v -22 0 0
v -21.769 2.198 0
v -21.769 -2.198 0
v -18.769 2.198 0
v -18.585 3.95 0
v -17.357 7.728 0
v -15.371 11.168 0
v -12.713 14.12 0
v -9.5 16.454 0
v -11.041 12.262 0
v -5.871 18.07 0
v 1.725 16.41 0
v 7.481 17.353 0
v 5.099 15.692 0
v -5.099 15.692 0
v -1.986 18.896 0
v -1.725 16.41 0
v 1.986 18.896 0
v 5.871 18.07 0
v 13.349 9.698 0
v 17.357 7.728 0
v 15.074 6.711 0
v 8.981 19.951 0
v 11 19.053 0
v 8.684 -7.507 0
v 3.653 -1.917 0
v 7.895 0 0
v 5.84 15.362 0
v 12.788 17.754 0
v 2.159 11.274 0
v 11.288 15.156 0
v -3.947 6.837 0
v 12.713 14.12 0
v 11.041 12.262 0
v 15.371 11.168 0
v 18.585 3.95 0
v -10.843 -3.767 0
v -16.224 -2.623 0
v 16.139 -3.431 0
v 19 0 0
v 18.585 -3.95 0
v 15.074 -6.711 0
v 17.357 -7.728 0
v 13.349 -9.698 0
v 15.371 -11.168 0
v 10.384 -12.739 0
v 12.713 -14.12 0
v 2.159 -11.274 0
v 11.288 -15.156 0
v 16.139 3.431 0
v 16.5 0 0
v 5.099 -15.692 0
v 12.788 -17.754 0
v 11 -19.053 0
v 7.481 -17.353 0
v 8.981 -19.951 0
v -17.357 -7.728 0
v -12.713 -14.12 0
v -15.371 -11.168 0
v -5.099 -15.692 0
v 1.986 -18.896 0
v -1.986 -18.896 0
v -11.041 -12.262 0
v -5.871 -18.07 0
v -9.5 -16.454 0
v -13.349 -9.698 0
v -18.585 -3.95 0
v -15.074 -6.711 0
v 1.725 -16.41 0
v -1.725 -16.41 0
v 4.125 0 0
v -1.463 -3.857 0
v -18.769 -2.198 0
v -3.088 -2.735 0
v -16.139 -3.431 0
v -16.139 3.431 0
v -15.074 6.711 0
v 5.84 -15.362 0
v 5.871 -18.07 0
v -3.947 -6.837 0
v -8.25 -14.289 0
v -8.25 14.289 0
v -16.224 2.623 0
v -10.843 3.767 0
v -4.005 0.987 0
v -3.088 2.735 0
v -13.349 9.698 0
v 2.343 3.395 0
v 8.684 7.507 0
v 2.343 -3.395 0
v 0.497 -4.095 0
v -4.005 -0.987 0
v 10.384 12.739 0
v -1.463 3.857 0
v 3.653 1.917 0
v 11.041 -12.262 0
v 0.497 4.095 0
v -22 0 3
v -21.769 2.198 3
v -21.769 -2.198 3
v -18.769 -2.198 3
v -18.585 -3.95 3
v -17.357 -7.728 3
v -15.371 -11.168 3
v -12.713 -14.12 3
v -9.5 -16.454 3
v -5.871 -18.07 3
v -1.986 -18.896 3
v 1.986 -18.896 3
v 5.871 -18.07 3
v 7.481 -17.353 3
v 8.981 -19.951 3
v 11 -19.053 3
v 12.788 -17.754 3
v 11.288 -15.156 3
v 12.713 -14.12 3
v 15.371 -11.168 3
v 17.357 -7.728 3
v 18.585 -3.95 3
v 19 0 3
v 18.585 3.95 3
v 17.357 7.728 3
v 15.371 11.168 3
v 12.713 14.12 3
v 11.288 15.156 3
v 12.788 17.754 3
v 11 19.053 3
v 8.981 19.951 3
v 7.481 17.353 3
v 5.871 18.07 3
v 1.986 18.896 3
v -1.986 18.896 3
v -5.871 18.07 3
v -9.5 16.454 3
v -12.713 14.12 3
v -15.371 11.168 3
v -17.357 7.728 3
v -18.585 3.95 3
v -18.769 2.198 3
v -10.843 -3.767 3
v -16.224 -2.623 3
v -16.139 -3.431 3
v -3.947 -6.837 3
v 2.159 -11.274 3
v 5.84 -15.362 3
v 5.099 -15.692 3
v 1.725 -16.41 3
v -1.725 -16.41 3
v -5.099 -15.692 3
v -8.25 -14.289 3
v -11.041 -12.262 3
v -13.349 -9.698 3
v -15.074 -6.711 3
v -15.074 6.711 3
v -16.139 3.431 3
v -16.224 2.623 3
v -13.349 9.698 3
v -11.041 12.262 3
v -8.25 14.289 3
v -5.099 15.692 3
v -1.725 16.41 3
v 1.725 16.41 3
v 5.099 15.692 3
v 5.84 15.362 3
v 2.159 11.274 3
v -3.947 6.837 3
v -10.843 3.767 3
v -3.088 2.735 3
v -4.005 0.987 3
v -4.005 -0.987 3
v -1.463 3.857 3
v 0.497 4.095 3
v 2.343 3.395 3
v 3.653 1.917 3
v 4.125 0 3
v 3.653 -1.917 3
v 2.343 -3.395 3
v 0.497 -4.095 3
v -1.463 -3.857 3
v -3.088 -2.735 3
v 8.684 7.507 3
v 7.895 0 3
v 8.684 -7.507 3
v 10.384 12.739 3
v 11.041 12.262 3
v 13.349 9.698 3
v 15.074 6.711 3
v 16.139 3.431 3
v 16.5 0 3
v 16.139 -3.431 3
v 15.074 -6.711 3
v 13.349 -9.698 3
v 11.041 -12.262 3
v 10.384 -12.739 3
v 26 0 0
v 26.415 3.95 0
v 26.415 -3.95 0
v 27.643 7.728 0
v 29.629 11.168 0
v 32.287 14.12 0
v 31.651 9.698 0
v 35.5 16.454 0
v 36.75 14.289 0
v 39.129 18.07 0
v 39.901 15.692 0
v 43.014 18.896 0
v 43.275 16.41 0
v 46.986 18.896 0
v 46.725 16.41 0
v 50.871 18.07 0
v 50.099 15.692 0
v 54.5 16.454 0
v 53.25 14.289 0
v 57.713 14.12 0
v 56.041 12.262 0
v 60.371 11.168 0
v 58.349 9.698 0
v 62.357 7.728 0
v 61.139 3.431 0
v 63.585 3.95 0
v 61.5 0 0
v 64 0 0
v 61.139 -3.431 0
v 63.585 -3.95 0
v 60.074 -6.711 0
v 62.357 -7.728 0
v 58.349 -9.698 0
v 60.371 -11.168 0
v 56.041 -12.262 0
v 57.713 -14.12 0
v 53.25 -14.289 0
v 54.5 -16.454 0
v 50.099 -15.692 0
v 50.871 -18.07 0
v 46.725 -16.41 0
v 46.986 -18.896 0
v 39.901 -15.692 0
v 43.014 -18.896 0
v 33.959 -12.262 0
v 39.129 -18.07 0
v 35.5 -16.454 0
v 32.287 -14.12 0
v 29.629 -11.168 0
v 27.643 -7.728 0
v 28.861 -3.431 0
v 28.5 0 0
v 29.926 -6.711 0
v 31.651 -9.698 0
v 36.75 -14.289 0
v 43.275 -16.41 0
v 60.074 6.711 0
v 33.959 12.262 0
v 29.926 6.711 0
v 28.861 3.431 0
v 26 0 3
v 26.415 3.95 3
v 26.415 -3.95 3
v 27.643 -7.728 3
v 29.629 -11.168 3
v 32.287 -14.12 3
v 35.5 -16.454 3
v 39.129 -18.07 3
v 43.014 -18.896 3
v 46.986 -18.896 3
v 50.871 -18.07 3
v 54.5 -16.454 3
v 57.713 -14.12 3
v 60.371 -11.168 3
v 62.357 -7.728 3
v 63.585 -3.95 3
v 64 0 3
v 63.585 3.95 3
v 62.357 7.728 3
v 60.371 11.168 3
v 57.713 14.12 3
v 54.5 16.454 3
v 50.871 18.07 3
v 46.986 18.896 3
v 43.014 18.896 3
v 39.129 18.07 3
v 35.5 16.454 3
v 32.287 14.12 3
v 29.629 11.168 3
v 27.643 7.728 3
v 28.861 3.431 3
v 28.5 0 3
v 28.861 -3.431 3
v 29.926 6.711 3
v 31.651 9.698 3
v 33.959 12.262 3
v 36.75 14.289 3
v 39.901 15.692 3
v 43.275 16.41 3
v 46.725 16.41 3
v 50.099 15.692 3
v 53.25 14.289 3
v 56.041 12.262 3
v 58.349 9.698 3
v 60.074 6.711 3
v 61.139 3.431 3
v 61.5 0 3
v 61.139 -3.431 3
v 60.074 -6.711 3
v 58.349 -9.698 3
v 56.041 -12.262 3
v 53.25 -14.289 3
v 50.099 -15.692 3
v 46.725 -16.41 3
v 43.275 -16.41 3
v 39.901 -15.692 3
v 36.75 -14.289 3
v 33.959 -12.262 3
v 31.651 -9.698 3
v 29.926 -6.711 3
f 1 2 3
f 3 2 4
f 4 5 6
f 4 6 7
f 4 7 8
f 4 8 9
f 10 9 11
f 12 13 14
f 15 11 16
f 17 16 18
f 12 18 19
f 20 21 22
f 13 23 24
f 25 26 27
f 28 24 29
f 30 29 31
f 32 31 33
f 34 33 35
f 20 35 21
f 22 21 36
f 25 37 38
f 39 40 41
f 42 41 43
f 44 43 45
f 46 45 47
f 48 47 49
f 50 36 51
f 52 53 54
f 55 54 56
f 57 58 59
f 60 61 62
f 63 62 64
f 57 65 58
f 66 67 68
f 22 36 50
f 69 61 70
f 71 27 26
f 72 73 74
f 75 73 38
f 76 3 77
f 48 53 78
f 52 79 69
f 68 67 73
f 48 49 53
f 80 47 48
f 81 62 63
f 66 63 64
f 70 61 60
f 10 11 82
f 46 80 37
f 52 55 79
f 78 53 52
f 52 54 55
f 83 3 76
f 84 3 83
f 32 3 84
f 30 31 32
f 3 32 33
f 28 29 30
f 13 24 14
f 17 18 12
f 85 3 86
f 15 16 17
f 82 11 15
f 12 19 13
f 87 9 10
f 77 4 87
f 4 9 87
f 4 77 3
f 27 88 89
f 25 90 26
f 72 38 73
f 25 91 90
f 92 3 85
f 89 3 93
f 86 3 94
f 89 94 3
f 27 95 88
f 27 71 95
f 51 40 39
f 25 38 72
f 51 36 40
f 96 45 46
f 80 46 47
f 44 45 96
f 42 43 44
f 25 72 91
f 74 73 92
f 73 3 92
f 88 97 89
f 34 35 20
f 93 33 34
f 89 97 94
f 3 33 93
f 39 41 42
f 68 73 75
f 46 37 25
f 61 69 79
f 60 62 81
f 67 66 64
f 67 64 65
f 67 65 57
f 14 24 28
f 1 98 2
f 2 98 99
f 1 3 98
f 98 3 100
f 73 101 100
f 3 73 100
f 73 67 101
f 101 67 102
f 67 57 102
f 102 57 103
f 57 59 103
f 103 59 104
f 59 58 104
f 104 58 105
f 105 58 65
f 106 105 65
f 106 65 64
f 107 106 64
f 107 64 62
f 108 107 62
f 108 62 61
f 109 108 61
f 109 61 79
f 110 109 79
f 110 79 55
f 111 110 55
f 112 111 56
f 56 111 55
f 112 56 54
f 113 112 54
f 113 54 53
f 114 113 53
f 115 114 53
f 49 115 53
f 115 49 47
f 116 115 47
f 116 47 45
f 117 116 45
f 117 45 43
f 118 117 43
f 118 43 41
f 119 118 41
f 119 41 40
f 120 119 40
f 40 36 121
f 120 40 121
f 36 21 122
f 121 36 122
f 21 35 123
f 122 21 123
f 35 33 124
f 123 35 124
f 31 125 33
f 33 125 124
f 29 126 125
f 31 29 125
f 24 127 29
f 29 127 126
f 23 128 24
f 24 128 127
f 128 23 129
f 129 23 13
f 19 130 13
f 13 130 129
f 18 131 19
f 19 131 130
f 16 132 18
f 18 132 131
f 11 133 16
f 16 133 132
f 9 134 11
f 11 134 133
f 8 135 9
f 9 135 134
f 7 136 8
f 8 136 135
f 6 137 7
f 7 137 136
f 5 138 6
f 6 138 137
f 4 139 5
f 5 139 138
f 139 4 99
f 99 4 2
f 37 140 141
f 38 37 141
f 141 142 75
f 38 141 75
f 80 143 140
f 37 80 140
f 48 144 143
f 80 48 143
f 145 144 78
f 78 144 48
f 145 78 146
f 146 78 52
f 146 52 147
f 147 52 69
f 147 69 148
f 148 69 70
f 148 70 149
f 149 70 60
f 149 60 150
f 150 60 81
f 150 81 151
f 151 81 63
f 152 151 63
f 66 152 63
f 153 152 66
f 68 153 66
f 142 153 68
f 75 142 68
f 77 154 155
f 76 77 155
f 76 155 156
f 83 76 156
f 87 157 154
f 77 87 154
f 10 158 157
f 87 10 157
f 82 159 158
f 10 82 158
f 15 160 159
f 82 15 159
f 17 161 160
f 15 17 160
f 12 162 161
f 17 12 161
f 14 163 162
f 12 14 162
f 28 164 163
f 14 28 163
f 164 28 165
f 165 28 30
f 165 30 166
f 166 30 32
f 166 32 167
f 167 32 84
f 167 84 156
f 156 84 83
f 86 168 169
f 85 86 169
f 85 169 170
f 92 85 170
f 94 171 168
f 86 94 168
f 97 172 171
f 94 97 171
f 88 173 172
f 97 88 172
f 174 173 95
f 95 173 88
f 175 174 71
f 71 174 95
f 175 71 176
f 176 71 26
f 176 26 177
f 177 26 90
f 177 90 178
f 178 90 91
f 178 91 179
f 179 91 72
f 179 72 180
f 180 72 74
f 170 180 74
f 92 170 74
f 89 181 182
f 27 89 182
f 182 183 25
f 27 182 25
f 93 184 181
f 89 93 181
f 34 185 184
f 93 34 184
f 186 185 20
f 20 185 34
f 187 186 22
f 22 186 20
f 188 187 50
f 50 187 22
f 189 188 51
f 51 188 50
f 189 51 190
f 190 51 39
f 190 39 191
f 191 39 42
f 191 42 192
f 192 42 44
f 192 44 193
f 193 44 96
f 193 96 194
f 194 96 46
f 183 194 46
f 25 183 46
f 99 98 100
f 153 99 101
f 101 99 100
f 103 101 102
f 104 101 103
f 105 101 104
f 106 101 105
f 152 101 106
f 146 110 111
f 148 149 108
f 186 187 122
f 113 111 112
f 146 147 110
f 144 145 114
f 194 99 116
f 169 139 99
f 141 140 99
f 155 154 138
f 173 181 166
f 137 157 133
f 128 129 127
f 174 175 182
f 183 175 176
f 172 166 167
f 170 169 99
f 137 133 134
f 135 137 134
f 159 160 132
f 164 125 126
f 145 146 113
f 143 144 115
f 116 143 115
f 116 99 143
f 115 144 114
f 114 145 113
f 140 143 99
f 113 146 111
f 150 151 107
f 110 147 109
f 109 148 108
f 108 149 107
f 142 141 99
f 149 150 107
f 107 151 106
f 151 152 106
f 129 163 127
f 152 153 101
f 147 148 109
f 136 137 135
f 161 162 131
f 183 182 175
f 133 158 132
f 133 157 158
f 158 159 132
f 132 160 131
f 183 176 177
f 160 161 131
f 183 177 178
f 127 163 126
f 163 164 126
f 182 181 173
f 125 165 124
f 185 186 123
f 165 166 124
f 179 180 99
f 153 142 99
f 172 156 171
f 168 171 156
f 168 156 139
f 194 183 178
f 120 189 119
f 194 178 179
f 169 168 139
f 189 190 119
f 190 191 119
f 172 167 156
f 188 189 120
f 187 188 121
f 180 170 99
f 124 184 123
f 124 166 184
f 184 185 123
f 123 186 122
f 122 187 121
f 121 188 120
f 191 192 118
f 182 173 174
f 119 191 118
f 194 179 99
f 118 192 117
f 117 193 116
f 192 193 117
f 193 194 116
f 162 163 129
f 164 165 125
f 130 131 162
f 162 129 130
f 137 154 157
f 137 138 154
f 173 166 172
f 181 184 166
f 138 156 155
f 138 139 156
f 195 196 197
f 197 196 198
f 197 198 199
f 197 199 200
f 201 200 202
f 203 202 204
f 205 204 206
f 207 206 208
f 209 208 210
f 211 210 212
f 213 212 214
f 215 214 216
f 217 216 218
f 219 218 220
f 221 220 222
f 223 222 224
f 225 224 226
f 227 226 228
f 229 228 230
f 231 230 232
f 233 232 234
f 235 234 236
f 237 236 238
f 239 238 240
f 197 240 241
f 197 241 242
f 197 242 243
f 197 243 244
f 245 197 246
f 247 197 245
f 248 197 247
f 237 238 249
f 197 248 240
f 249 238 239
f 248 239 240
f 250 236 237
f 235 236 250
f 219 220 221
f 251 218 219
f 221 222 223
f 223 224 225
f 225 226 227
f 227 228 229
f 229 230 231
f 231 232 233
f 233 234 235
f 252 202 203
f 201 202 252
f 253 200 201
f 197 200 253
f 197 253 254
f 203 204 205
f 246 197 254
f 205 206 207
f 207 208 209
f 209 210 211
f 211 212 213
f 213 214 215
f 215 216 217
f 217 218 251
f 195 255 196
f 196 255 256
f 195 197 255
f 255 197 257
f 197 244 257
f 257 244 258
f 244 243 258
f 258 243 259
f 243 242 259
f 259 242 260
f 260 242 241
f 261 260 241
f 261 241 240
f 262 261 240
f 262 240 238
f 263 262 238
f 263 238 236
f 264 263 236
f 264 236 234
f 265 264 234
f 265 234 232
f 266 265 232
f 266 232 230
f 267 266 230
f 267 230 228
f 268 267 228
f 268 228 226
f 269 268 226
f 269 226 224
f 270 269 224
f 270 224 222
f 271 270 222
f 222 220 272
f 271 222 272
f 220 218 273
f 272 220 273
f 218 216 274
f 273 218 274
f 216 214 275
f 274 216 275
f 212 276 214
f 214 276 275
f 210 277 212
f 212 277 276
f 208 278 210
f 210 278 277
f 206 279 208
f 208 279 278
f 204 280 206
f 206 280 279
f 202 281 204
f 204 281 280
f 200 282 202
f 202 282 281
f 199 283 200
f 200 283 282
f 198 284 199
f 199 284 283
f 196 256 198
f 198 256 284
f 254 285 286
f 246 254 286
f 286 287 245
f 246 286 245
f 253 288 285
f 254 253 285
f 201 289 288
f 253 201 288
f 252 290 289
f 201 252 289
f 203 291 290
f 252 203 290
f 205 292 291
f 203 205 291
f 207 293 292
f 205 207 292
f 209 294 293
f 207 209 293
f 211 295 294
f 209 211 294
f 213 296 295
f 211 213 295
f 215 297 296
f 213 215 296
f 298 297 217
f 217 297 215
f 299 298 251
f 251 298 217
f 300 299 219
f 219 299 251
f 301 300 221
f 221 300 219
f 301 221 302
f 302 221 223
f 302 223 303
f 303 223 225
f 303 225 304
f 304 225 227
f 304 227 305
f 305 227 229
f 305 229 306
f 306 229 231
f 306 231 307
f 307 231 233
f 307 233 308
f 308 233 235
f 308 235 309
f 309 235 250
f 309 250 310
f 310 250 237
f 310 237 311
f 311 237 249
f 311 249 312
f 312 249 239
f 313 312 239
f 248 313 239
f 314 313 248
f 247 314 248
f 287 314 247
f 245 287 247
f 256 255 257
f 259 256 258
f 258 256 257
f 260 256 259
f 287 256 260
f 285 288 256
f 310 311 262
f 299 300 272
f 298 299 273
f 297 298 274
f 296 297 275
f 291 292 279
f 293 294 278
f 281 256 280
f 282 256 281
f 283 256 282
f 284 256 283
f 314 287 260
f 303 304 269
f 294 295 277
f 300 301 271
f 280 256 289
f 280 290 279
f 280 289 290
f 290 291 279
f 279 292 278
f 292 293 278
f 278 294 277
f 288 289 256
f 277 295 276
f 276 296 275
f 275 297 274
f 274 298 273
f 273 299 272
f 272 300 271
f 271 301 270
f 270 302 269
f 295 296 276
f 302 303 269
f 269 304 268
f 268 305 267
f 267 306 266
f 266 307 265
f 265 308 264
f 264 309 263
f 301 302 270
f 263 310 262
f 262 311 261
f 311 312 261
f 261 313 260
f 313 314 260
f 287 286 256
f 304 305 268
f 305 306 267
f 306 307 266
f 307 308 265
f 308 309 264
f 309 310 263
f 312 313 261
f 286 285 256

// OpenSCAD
module tube(od, id, l)
{
    d = 1;
    difference()
    {
        cylinder(r=od/2, h=l);
        translate([0,0,-d]) cylinder(r=id/2, h=l+2*d);
    }
}

module threespokes(od, et, t)
{
    d = 1;
    difference()
    {
        cylinder(r=od/2, h=t);
        for (a=[0,120,240])
            translate([od*cos(a),od*sin(a),-d])
                cylinder(r=0.5*(sqrt(3)*od-et), h=t+d*2);
    }
}

t  = 2.5;    // thickness of hub tube

module TestThreeSpokedWheel(rd, rt, hd, ht, ad, at)
{
    d  = 1;
    
    difference()
    {
        union()
        {
            tube(hd, hd-2*t, ht);
            threespokes(rd, 4, rt);
        }
        translate([0,0,-d]) 
            cylinder(r=ad/2, h=at+2*d);    
    }
}

axledia = 8+0.25;

TestThreeSpokedWheel(38+6, 3, 38, 3, axledia, 3);

// Just the rim:
translate([45,0,0]) tube(38,38-2*t,3);
